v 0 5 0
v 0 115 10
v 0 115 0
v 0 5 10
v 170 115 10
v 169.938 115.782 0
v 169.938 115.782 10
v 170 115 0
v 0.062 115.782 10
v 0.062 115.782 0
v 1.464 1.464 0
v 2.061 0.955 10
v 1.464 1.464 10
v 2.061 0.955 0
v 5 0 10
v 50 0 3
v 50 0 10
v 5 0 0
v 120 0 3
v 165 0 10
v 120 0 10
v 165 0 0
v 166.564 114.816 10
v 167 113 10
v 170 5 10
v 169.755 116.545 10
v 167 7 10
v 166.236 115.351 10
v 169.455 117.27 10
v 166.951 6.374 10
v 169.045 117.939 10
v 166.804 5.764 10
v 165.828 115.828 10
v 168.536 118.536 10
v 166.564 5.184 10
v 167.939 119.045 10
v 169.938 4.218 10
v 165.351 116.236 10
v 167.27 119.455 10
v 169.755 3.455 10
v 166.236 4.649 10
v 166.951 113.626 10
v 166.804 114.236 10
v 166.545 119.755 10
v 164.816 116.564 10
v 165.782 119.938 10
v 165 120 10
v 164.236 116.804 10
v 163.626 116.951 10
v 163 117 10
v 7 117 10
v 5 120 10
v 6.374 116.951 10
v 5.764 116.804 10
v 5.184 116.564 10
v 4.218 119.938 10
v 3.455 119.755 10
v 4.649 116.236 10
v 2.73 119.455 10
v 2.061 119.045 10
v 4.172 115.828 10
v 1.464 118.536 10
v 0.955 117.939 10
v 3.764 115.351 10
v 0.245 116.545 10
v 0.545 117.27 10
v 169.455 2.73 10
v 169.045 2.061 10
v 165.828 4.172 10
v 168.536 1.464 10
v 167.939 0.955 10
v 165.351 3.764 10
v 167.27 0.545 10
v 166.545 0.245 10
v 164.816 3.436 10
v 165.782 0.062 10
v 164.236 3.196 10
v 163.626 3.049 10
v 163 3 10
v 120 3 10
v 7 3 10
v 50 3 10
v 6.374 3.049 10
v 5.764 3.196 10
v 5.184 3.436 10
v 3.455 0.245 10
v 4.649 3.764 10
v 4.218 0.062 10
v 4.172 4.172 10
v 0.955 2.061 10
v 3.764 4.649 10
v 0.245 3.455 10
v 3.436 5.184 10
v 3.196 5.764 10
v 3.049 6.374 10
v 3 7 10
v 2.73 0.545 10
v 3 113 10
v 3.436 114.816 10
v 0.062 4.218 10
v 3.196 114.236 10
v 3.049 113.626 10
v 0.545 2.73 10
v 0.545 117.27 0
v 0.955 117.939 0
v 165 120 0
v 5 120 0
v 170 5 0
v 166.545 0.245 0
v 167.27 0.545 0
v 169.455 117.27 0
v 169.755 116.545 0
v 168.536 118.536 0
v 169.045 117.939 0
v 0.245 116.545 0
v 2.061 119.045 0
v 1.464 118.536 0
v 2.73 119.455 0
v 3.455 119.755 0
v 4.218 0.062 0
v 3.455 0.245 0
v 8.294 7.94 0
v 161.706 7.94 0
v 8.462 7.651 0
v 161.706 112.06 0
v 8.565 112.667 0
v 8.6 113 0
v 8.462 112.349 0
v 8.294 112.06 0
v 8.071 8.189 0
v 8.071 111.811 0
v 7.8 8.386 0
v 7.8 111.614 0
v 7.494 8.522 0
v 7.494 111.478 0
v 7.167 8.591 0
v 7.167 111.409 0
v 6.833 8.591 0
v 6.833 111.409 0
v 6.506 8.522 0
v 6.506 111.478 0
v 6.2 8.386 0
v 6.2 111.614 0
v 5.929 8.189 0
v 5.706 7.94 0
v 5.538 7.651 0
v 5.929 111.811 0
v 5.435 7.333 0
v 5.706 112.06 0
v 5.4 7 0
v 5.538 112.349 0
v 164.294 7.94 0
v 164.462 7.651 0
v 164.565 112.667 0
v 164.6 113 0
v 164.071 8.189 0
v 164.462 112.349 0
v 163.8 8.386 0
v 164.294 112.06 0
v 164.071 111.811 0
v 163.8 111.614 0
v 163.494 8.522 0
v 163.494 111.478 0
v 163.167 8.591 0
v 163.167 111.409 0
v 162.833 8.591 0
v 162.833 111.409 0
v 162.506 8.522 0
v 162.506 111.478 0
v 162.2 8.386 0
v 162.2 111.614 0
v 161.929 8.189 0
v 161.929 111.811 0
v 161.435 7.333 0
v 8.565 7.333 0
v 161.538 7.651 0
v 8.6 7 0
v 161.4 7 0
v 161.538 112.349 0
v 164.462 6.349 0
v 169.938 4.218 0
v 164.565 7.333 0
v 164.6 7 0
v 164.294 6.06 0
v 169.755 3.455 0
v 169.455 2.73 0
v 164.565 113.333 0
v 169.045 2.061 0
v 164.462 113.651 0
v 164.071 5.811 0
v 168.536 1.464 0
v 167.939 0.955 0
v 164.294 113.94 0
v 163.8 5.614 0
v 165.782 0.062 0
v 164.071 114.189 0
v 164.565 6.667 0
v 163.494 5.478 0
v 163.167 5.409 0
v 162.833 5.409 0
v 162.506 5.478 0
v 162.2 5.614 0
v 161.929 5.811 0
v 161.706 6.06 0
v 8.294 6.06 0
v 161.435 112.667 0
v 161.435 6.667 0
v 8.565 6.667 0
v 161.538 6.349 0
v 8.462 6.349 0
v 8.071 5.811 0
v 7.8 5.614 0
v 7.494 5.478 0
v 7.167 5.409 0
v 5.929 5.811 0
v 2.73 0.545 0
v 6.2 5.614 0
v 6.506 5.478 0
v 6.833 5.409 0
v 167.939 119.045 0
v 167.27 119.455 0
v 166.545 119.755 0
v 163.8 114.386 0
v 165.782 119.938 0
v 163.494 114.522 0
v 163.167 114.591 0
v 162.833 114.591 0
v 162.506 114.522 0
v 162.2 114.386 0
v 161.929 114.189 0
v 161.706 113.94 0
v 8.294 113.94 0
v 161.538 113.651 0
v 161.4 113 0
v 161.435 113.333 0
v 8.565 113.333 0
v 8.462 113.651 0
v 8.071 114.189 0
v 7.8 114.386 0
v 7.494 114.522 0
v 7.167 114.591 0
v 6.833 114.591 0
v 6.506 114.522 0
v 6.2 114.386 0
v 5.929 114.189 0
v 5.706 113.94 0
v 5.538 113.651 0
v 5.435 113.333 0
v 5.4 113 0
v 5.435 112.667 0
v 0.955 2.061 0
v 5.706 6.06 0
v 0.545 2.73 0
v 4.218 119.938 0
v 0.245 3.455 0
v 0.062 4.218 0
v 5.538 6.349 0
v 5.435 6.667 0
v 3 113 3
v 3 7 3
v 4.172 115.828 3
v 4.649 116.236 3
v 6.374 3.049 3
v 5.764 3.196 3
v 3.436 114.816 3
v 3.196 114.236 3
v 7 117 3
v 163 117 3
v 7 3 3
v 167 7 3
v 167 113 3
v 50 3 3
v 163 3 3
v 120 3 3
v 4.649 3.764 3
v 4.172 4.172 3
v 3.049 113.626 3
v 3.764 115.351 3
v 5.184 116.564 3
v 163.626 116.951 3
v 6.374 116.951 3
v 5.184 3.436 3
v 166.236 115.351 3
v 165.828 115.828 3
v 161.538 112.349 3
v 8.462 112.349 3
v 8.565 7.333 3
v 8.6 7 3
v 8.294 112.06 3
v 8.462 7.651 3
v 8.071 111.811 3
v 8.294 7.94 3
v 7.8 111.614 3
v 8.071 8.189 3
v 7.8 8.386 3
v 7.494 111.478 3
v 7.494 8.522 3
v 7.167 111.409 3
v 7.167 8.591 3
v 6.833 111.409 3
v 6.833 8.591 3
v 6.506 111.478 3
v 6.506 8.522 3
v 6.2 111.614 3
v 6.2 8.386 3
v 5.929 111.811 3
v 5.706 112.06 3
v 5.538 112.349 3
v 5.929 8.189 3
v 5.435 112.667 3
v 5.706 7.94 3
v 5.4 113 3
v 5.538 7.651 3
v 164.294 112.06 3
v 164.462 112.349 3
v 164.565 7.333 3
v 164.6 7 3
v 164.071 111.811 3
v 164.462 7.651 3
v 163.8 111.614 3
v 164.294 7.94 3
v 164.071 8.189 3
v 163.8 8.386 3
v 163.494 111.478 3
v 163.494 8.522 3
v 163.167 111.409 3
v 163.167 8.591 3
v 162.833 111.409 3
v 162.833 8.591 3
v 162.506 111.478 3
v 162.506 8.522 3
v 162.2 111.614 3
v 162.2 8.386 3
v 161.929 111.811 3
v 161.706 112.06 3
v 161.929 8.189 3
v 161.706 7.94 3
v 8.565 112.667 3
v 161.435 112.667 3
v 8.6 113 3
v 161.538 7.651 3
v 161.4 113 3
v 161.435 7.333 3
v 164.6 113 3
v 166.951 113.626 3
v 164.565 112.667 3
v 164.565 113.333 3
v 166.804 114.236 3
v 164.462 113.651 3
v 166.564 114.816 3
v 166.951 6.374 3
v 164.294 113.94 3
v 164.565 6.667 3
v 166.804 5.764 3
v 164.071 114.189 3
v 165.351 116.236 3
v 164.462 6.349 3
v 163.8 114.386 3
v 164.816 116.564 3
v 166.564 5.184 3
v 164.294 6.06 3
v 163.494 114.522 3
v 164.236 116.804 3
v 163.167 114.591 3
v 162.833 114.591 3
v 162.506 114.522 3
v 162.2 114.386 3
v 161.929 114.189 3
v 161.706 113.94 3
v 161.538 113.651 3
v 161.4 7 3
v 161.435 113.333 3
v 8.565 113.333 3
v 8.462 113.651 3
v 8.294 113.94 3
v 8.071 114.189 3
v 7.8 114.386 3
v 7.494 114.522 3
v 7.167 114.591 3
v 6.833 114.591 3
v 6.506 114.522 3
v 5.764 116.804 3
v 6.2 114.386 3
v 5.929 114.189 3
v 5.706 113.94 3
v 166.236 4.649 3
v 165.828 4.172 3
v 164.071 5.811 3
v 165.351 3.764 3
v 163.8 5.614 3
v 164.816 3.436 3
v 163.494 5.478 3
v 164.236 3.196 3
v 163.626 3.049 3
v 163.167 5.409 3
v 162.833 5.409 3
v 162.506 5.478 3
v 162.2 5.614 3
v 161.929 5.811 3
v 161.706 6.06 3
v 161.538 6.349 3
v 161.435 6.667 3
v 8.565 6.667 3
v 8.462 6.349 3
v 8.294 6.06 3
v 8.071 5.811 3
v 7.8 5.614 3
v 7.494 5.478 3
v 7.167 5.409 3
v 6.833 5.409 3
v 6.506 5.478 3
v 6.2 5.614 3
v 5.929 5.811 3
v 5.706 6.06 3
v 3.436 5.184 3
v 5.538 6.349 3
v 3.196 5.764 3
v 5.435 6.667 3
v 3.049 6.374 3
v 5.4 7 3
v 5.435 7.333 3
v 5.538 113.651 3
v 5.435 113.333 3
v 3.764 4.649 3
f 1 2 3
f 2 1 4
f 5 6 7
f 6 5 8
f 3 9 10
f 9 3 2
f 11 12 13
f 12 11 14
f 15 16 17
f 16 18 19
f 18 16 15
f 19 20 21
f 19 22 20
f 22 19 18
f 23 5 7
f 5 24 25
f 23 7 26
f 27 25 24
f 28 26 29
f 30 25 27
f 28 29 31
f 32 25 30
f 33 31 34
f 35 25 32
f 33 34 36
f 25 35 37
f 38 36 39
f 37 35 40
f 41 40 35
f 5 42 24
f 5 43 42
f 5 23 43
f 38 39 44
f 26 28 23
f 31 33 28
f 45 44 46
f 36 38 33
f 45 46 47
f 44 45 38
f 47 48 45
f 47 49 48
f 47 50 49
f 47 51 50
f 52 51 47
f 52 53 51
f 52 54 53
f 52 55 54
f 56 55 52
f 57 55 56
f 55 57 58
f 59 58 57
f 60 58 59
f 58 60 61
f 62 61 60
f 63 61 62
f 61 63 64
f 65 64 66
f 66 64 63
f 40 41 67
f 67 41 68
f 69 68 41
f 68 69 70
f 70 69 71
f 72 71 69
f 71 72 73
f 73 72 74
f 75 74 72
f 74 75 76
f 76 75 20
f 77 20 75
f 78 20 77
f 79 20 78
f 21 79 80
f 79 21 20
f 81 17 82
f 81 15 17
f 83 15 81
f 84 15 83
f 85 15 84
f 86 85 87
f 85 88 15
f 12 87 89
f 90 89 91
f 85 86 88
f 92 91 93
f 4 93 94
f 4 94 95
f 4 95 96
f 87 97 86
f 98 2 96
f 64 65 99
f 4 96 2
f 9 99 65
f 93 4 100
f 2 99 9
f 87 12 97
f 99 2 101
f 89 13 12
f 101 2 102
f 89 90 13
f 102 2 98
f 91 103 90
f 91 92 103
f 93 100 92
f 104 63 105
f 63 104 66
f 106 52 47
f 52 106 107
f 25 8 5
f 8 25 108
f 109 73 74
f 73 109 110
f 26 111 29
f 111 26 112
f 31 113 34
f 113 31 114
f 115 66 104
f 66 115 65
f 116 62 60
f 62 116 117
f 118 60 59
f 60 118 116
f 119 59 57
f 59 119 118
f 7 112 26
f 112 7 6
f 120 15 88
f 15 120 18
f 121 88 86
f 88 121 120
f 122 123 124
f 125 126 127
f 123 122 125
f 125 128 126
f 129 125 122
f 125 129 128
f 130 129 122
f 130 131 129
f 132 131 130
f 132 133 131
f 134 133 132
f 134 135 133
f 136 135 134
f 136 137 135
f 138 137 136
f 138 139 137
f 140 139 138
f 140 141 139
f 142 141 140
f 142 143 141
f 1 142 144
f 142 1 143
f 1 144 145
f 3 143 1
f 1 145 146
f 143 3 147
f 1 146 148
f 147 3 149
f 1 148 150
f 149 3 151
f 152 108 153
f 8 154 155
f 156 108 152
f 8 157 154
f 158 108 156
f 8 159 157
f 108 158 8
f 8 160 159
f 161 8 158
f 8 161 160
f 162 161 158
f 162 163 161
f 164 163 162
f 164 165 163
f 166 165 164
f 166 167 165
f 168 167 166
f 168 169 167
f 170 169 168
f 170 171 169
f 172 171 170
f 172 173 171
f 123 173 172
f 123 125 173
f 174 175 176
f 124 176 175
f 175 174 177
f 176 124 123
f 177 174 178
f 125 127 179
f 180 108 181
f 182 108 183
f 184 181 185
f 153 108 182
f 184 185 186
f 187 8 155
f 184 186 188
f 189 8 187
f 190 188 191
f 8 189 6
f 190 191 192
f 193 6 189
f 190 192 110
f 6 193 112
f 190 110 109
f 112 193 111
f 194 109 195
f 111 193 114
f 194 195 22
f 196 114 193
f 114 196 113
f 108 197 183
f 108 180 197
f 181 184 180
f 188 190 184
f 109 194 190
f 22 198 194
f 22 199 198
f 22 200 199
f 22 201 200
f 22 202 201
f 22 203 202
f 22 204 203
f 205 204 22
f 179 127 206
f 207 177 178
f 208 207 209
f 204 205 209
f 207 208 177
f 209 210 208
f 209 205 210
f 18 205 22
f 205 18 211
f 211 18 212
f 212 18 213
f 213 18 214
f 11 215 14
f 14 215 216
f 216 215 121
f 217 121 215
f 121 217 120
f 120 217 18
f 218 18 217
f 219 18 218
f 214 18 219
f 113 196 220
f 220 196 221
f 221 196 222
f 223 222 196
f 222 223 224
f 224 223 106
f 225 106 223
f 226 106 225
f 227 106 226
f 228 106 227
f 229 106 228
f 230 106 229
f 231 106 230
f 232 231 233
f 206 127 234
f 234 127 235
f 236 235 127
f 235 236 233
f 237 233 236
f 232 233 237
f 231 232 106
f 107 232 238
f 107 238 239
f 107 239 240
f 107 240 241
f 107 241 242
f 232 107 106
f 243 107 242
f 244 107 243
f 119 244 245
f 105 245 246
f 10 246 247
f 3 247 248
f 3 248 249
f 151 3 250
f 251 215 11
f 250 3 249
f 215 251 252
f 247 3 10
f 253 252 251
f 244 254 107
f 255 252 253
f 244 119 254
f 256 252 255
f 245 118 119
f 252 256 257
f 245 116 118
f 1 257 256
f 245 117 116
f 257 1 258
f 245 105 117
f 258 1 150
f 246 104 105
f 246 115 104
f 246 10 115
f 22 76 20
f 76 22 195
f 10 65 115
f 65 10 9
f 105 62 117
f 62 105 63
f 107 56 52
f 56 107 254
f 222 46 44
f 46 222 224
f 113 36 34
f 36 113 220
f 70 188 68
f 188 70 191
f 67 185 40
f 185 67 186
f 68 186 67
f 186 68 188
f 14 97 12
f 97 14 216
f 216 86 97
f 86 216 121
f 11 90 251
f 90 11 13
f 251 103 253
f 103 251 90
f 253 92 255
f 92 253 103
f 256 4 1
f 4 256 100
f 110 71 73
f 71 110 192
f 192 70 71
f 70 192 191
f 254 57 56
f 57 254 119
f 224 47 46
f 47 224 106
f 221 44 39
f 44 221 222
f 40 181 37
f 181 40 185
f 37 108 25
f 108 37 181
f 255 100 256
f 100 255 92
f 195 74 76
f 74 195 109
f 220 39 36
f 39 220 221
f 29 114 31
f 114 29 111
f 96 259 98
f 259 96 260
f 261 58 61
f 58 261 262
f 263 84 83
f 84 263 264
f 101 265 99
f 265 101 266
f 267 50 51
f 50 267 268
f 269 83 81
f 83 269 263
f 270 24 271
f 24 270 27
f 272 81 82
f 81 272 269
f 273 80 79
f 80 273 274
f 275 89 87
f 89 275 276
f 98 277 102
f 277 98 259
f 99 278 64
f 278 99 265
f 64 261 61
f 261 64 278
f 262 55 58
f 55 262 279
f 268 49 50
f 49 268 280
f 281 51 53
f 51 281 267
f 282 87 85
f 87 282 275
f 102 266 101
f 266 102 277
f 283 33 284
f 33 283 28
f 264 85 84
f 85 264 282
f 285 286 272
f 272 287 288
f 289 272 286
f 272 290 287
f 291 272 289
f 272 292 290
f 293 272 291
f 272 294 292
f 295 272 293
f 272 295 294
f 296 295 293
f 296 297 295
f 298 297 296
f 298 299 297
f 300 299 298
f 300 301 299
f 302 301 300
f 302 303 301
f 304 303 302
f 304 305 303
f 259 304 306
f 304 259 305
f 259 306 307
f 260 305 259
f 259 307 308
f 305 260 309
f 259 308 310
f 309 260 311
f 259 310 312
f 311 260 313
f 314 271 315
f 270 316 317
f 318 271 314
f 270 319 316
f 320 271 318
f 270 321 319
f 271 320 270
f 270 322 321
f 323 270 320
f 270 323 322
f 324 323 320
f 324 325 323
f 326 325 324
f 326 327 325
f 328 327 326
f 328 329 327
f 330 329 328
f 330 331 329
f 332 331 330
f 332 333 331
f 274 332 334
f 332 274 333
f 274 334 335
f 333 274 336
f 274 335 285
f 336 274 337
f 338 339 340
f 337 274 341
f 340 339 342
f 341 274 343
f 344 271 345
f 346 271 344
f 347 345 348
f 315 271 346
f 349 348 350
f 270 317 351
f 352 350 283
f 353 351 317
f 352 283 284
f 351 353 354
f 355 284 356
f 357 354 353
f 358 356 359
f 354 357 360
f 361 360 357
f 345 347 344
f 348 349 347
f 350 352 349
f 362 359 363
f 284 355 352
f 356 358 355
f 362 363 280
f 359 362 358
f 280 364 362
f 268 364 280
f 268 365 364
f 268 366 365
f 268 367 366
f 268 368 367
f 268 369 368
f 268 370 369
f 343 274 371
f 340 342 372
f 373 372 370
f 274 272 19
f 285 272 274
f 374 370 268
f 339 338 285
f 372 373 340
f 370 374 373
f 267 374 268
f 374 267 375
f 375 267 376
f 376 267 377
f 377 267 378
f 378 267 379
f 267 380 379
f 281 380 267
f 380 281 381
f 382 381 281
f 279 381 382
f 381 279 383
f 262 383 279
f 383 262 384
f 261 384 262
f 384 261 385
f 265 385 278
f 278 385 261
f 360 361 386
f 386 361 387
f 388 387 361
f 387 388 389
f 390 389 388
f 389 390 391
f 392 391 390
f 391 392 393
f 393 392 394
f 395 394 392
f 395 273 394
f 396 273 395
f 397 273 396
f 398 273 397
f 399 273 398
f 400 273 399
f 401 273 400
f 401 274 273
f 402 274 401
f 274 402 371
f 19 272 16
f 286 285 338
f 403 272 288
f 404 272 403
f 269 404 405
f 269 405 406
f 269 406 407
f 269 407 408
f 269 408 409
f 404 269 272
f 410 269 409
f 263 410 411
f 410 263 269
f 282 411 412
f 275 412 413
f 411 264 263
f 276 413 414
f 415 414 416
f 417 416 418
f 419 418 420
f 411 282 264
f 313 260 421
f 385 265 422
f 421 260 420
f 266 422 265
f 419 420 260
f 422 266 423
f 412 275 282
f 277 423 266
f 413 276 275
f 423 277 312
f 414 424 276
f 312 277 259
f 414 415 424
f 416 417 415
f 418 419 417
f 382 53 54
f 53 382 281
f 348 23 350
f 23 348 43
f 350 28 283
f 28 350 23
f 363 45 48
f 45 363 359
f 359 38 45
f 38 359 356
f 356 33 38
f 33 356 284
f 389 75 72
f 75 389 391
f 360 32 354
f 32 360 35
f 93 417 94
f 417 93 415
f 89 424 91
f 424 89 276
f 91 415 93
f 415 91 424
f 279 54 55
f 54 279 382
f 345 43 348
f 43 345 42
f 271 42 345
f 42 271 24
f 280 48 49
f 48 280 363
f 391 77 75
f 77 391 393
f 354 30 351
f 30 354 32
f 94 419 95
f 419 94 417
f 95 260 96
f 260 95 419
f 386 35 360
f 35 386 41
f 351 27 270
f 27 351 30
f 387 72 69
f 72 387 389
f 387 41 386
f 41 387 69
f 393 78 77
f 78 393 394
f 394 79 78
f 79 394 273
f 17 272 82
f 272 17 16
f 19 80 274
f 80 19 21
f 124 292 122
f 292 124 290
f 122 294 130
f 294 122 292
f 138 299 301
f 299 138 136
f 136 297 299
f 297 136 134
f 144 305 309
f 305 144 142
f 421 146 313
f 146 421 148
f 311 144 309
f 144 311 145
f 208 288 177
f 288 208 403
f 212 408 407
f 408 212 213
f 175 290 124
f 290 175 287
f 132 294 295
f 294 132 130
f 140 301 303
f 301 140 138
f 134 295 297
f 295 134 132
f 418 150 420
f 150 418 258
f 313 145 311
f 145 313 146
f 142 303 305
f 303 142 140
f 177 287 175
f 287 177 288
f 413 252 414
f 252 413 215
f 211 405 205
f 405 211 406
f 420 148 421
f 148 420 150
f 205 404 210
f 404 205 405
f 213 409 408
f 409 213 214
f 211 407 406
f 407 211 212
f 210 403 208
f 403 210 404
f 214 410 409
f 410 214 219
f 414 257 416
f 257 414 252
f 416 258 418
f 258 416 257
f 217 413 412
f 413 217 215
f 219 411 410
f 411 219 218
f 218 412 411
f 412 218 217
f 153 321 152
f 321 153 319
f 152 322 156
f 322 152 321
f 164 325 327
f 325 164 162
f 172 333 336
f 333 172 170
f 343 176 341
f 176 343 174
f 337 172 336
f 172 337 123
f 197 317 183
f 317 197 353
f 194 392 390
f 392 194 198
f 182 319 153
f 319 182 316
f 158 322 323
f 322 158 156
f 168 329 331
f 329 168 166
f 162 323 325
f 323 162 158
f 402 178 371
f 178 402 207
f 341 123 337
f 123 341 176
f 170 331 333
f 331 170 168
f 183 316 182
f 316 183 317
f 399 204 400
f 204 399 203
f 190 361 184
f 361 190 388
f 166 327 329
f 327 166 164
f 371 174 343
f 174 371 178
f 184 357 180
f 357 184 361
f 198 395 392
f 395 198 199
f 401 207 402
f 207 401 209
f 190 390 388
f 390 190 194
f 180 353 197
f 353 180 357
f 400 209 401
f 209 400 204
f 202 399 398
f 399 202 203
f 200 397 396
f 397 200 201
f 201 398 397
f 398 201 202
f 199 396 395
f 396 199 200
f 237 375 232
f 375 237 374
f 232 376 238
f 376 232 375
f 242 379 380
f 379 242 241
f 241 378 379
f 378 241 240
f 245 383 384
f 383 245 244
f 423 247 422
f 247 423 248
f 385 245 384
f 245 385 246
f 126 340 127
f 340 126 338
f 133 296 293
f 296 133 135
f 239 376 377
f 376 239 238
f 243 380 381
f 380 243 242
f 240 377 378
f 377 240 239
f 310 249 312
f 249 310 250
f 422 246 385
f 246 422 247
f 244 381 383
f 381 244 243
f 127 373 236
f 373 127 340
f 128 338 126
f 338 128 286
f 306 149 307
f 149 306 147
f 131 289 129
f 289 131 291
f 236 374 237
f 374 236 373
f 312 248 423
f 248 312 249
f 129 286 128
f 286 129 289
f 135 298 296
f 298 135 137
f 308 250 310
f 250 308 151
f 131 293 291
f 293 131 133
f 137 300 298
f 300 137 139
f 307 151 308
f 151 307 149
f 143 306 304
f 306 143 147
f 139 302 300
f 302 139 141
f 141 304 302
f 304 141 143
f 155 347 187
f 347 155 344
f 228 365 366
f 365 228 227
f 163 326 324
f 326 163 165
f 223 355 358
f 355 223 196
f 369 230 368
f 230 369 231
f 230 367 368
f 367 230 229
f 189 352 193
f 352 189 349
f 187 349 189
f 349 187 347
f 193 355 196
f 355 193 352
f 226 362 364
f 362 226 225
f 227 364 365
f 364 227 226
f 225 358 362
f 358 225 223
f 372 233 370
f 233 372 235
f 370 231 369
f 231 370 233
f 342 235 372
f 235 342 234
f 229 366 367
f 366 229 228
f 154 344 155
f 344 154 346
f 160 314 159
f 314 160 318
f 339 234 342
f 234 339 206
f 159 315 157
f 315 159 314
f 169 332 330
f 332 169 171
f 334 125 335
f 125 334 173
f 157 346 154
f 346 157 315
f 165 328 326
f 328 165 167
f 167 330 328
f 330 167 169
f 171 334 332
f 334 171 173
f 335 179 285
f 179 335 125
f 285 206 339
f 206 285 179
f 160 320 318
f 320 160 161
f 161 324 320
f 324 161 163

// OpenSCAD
//======================================================
// LOW PROFILE NODE 1 ENCLOSURE - TOP COVER ONLY
// WITH:
// - LCD WINDOW
// - SIDE-BY-SIDE GREEN & RED LED HOLES (RIGHT OF LCD)
// - CORNER SCREW THROUGH-HOLES
//======================================================

//======================================================
// BOX CONFIGURATION VARIABLES (Must match base)
//======================================================
wall = 3;
box_length = 170;
box_width  = 120;
corner = 5;

//======================================================
// TOP COVER
//======================================================
difference() {

    //--------------------------------------------------
    // OUTER COVER
    //--------------------------------------------------
    roundedBox(box_length, box_width, 10, corner);

    //--------------------------------------------------
    // INNER HOLLOW
    //--------------------------------------------------
    translate([wall, wall, wall])
    roundedBox(
        box_length - wall*2,
        box_width - wall*2,
        10,
        corner-1
    );

    //--------------------------------------------------
    // LCD WINDOW (Positioned next to MQ135)
    //--------------------------------------------------
    translate([50, -1, 3])
    cube([70, 6, 25]);

    //--------------------------------------------------
    // GREEN LED HOLE (Side-by-side right of LCD)
    //--------------------------------------------------
    translate([124, -1, 15])
    rotate([90, 0, 0])
    cylinder(h=6, d=5, $fn=30);

    //--------------------------------------------------
    // RED LED HOLE (Side-by-side right of Green LED)
    //--------------------------------------------------
    translate([130, -1, 15])
    rotate([90, 0, 0])
    cylinder(h=6, d=5, $fn=30);

    //--------------------------------------------------
    // THROUGH-HOLES FOR SCREWS (Lid Corners)
    //--------------------------------------------------
    translate([wall+4, wall+4, -1])                   cylinder(h=15, d=3.2, $fn=30);
    translate([box_length-wall-4, wall+4, -1])        cylinder(h=15, d=3.2, $fn=30);
    translate([wall+4, box_width-wall-4, -1])         cylinder(h=15, d=3.2, $fn=30);
    translate([box_length-wall-4, box_width-wall-4, -1]) cylinder(h=15, d=3.2, $fn=30);

}

//======================================================
// MODULE REUSE
//======================================================
module roundedBox(l, w, h, r){
    hull(){
        translate([r, r, 0])     cylinder(r=r, h=h, $fn=40);
        translate([l-r, r, 0])   cylinder(r=r, h=h, $fn=40);
        translate([r, w-r, 0])   cylinder(r=r, h=h, $fn=40);
        translate([l-r, w-r, 0]) cylinder(r=r, h=h, $fn=40);
    }
}
